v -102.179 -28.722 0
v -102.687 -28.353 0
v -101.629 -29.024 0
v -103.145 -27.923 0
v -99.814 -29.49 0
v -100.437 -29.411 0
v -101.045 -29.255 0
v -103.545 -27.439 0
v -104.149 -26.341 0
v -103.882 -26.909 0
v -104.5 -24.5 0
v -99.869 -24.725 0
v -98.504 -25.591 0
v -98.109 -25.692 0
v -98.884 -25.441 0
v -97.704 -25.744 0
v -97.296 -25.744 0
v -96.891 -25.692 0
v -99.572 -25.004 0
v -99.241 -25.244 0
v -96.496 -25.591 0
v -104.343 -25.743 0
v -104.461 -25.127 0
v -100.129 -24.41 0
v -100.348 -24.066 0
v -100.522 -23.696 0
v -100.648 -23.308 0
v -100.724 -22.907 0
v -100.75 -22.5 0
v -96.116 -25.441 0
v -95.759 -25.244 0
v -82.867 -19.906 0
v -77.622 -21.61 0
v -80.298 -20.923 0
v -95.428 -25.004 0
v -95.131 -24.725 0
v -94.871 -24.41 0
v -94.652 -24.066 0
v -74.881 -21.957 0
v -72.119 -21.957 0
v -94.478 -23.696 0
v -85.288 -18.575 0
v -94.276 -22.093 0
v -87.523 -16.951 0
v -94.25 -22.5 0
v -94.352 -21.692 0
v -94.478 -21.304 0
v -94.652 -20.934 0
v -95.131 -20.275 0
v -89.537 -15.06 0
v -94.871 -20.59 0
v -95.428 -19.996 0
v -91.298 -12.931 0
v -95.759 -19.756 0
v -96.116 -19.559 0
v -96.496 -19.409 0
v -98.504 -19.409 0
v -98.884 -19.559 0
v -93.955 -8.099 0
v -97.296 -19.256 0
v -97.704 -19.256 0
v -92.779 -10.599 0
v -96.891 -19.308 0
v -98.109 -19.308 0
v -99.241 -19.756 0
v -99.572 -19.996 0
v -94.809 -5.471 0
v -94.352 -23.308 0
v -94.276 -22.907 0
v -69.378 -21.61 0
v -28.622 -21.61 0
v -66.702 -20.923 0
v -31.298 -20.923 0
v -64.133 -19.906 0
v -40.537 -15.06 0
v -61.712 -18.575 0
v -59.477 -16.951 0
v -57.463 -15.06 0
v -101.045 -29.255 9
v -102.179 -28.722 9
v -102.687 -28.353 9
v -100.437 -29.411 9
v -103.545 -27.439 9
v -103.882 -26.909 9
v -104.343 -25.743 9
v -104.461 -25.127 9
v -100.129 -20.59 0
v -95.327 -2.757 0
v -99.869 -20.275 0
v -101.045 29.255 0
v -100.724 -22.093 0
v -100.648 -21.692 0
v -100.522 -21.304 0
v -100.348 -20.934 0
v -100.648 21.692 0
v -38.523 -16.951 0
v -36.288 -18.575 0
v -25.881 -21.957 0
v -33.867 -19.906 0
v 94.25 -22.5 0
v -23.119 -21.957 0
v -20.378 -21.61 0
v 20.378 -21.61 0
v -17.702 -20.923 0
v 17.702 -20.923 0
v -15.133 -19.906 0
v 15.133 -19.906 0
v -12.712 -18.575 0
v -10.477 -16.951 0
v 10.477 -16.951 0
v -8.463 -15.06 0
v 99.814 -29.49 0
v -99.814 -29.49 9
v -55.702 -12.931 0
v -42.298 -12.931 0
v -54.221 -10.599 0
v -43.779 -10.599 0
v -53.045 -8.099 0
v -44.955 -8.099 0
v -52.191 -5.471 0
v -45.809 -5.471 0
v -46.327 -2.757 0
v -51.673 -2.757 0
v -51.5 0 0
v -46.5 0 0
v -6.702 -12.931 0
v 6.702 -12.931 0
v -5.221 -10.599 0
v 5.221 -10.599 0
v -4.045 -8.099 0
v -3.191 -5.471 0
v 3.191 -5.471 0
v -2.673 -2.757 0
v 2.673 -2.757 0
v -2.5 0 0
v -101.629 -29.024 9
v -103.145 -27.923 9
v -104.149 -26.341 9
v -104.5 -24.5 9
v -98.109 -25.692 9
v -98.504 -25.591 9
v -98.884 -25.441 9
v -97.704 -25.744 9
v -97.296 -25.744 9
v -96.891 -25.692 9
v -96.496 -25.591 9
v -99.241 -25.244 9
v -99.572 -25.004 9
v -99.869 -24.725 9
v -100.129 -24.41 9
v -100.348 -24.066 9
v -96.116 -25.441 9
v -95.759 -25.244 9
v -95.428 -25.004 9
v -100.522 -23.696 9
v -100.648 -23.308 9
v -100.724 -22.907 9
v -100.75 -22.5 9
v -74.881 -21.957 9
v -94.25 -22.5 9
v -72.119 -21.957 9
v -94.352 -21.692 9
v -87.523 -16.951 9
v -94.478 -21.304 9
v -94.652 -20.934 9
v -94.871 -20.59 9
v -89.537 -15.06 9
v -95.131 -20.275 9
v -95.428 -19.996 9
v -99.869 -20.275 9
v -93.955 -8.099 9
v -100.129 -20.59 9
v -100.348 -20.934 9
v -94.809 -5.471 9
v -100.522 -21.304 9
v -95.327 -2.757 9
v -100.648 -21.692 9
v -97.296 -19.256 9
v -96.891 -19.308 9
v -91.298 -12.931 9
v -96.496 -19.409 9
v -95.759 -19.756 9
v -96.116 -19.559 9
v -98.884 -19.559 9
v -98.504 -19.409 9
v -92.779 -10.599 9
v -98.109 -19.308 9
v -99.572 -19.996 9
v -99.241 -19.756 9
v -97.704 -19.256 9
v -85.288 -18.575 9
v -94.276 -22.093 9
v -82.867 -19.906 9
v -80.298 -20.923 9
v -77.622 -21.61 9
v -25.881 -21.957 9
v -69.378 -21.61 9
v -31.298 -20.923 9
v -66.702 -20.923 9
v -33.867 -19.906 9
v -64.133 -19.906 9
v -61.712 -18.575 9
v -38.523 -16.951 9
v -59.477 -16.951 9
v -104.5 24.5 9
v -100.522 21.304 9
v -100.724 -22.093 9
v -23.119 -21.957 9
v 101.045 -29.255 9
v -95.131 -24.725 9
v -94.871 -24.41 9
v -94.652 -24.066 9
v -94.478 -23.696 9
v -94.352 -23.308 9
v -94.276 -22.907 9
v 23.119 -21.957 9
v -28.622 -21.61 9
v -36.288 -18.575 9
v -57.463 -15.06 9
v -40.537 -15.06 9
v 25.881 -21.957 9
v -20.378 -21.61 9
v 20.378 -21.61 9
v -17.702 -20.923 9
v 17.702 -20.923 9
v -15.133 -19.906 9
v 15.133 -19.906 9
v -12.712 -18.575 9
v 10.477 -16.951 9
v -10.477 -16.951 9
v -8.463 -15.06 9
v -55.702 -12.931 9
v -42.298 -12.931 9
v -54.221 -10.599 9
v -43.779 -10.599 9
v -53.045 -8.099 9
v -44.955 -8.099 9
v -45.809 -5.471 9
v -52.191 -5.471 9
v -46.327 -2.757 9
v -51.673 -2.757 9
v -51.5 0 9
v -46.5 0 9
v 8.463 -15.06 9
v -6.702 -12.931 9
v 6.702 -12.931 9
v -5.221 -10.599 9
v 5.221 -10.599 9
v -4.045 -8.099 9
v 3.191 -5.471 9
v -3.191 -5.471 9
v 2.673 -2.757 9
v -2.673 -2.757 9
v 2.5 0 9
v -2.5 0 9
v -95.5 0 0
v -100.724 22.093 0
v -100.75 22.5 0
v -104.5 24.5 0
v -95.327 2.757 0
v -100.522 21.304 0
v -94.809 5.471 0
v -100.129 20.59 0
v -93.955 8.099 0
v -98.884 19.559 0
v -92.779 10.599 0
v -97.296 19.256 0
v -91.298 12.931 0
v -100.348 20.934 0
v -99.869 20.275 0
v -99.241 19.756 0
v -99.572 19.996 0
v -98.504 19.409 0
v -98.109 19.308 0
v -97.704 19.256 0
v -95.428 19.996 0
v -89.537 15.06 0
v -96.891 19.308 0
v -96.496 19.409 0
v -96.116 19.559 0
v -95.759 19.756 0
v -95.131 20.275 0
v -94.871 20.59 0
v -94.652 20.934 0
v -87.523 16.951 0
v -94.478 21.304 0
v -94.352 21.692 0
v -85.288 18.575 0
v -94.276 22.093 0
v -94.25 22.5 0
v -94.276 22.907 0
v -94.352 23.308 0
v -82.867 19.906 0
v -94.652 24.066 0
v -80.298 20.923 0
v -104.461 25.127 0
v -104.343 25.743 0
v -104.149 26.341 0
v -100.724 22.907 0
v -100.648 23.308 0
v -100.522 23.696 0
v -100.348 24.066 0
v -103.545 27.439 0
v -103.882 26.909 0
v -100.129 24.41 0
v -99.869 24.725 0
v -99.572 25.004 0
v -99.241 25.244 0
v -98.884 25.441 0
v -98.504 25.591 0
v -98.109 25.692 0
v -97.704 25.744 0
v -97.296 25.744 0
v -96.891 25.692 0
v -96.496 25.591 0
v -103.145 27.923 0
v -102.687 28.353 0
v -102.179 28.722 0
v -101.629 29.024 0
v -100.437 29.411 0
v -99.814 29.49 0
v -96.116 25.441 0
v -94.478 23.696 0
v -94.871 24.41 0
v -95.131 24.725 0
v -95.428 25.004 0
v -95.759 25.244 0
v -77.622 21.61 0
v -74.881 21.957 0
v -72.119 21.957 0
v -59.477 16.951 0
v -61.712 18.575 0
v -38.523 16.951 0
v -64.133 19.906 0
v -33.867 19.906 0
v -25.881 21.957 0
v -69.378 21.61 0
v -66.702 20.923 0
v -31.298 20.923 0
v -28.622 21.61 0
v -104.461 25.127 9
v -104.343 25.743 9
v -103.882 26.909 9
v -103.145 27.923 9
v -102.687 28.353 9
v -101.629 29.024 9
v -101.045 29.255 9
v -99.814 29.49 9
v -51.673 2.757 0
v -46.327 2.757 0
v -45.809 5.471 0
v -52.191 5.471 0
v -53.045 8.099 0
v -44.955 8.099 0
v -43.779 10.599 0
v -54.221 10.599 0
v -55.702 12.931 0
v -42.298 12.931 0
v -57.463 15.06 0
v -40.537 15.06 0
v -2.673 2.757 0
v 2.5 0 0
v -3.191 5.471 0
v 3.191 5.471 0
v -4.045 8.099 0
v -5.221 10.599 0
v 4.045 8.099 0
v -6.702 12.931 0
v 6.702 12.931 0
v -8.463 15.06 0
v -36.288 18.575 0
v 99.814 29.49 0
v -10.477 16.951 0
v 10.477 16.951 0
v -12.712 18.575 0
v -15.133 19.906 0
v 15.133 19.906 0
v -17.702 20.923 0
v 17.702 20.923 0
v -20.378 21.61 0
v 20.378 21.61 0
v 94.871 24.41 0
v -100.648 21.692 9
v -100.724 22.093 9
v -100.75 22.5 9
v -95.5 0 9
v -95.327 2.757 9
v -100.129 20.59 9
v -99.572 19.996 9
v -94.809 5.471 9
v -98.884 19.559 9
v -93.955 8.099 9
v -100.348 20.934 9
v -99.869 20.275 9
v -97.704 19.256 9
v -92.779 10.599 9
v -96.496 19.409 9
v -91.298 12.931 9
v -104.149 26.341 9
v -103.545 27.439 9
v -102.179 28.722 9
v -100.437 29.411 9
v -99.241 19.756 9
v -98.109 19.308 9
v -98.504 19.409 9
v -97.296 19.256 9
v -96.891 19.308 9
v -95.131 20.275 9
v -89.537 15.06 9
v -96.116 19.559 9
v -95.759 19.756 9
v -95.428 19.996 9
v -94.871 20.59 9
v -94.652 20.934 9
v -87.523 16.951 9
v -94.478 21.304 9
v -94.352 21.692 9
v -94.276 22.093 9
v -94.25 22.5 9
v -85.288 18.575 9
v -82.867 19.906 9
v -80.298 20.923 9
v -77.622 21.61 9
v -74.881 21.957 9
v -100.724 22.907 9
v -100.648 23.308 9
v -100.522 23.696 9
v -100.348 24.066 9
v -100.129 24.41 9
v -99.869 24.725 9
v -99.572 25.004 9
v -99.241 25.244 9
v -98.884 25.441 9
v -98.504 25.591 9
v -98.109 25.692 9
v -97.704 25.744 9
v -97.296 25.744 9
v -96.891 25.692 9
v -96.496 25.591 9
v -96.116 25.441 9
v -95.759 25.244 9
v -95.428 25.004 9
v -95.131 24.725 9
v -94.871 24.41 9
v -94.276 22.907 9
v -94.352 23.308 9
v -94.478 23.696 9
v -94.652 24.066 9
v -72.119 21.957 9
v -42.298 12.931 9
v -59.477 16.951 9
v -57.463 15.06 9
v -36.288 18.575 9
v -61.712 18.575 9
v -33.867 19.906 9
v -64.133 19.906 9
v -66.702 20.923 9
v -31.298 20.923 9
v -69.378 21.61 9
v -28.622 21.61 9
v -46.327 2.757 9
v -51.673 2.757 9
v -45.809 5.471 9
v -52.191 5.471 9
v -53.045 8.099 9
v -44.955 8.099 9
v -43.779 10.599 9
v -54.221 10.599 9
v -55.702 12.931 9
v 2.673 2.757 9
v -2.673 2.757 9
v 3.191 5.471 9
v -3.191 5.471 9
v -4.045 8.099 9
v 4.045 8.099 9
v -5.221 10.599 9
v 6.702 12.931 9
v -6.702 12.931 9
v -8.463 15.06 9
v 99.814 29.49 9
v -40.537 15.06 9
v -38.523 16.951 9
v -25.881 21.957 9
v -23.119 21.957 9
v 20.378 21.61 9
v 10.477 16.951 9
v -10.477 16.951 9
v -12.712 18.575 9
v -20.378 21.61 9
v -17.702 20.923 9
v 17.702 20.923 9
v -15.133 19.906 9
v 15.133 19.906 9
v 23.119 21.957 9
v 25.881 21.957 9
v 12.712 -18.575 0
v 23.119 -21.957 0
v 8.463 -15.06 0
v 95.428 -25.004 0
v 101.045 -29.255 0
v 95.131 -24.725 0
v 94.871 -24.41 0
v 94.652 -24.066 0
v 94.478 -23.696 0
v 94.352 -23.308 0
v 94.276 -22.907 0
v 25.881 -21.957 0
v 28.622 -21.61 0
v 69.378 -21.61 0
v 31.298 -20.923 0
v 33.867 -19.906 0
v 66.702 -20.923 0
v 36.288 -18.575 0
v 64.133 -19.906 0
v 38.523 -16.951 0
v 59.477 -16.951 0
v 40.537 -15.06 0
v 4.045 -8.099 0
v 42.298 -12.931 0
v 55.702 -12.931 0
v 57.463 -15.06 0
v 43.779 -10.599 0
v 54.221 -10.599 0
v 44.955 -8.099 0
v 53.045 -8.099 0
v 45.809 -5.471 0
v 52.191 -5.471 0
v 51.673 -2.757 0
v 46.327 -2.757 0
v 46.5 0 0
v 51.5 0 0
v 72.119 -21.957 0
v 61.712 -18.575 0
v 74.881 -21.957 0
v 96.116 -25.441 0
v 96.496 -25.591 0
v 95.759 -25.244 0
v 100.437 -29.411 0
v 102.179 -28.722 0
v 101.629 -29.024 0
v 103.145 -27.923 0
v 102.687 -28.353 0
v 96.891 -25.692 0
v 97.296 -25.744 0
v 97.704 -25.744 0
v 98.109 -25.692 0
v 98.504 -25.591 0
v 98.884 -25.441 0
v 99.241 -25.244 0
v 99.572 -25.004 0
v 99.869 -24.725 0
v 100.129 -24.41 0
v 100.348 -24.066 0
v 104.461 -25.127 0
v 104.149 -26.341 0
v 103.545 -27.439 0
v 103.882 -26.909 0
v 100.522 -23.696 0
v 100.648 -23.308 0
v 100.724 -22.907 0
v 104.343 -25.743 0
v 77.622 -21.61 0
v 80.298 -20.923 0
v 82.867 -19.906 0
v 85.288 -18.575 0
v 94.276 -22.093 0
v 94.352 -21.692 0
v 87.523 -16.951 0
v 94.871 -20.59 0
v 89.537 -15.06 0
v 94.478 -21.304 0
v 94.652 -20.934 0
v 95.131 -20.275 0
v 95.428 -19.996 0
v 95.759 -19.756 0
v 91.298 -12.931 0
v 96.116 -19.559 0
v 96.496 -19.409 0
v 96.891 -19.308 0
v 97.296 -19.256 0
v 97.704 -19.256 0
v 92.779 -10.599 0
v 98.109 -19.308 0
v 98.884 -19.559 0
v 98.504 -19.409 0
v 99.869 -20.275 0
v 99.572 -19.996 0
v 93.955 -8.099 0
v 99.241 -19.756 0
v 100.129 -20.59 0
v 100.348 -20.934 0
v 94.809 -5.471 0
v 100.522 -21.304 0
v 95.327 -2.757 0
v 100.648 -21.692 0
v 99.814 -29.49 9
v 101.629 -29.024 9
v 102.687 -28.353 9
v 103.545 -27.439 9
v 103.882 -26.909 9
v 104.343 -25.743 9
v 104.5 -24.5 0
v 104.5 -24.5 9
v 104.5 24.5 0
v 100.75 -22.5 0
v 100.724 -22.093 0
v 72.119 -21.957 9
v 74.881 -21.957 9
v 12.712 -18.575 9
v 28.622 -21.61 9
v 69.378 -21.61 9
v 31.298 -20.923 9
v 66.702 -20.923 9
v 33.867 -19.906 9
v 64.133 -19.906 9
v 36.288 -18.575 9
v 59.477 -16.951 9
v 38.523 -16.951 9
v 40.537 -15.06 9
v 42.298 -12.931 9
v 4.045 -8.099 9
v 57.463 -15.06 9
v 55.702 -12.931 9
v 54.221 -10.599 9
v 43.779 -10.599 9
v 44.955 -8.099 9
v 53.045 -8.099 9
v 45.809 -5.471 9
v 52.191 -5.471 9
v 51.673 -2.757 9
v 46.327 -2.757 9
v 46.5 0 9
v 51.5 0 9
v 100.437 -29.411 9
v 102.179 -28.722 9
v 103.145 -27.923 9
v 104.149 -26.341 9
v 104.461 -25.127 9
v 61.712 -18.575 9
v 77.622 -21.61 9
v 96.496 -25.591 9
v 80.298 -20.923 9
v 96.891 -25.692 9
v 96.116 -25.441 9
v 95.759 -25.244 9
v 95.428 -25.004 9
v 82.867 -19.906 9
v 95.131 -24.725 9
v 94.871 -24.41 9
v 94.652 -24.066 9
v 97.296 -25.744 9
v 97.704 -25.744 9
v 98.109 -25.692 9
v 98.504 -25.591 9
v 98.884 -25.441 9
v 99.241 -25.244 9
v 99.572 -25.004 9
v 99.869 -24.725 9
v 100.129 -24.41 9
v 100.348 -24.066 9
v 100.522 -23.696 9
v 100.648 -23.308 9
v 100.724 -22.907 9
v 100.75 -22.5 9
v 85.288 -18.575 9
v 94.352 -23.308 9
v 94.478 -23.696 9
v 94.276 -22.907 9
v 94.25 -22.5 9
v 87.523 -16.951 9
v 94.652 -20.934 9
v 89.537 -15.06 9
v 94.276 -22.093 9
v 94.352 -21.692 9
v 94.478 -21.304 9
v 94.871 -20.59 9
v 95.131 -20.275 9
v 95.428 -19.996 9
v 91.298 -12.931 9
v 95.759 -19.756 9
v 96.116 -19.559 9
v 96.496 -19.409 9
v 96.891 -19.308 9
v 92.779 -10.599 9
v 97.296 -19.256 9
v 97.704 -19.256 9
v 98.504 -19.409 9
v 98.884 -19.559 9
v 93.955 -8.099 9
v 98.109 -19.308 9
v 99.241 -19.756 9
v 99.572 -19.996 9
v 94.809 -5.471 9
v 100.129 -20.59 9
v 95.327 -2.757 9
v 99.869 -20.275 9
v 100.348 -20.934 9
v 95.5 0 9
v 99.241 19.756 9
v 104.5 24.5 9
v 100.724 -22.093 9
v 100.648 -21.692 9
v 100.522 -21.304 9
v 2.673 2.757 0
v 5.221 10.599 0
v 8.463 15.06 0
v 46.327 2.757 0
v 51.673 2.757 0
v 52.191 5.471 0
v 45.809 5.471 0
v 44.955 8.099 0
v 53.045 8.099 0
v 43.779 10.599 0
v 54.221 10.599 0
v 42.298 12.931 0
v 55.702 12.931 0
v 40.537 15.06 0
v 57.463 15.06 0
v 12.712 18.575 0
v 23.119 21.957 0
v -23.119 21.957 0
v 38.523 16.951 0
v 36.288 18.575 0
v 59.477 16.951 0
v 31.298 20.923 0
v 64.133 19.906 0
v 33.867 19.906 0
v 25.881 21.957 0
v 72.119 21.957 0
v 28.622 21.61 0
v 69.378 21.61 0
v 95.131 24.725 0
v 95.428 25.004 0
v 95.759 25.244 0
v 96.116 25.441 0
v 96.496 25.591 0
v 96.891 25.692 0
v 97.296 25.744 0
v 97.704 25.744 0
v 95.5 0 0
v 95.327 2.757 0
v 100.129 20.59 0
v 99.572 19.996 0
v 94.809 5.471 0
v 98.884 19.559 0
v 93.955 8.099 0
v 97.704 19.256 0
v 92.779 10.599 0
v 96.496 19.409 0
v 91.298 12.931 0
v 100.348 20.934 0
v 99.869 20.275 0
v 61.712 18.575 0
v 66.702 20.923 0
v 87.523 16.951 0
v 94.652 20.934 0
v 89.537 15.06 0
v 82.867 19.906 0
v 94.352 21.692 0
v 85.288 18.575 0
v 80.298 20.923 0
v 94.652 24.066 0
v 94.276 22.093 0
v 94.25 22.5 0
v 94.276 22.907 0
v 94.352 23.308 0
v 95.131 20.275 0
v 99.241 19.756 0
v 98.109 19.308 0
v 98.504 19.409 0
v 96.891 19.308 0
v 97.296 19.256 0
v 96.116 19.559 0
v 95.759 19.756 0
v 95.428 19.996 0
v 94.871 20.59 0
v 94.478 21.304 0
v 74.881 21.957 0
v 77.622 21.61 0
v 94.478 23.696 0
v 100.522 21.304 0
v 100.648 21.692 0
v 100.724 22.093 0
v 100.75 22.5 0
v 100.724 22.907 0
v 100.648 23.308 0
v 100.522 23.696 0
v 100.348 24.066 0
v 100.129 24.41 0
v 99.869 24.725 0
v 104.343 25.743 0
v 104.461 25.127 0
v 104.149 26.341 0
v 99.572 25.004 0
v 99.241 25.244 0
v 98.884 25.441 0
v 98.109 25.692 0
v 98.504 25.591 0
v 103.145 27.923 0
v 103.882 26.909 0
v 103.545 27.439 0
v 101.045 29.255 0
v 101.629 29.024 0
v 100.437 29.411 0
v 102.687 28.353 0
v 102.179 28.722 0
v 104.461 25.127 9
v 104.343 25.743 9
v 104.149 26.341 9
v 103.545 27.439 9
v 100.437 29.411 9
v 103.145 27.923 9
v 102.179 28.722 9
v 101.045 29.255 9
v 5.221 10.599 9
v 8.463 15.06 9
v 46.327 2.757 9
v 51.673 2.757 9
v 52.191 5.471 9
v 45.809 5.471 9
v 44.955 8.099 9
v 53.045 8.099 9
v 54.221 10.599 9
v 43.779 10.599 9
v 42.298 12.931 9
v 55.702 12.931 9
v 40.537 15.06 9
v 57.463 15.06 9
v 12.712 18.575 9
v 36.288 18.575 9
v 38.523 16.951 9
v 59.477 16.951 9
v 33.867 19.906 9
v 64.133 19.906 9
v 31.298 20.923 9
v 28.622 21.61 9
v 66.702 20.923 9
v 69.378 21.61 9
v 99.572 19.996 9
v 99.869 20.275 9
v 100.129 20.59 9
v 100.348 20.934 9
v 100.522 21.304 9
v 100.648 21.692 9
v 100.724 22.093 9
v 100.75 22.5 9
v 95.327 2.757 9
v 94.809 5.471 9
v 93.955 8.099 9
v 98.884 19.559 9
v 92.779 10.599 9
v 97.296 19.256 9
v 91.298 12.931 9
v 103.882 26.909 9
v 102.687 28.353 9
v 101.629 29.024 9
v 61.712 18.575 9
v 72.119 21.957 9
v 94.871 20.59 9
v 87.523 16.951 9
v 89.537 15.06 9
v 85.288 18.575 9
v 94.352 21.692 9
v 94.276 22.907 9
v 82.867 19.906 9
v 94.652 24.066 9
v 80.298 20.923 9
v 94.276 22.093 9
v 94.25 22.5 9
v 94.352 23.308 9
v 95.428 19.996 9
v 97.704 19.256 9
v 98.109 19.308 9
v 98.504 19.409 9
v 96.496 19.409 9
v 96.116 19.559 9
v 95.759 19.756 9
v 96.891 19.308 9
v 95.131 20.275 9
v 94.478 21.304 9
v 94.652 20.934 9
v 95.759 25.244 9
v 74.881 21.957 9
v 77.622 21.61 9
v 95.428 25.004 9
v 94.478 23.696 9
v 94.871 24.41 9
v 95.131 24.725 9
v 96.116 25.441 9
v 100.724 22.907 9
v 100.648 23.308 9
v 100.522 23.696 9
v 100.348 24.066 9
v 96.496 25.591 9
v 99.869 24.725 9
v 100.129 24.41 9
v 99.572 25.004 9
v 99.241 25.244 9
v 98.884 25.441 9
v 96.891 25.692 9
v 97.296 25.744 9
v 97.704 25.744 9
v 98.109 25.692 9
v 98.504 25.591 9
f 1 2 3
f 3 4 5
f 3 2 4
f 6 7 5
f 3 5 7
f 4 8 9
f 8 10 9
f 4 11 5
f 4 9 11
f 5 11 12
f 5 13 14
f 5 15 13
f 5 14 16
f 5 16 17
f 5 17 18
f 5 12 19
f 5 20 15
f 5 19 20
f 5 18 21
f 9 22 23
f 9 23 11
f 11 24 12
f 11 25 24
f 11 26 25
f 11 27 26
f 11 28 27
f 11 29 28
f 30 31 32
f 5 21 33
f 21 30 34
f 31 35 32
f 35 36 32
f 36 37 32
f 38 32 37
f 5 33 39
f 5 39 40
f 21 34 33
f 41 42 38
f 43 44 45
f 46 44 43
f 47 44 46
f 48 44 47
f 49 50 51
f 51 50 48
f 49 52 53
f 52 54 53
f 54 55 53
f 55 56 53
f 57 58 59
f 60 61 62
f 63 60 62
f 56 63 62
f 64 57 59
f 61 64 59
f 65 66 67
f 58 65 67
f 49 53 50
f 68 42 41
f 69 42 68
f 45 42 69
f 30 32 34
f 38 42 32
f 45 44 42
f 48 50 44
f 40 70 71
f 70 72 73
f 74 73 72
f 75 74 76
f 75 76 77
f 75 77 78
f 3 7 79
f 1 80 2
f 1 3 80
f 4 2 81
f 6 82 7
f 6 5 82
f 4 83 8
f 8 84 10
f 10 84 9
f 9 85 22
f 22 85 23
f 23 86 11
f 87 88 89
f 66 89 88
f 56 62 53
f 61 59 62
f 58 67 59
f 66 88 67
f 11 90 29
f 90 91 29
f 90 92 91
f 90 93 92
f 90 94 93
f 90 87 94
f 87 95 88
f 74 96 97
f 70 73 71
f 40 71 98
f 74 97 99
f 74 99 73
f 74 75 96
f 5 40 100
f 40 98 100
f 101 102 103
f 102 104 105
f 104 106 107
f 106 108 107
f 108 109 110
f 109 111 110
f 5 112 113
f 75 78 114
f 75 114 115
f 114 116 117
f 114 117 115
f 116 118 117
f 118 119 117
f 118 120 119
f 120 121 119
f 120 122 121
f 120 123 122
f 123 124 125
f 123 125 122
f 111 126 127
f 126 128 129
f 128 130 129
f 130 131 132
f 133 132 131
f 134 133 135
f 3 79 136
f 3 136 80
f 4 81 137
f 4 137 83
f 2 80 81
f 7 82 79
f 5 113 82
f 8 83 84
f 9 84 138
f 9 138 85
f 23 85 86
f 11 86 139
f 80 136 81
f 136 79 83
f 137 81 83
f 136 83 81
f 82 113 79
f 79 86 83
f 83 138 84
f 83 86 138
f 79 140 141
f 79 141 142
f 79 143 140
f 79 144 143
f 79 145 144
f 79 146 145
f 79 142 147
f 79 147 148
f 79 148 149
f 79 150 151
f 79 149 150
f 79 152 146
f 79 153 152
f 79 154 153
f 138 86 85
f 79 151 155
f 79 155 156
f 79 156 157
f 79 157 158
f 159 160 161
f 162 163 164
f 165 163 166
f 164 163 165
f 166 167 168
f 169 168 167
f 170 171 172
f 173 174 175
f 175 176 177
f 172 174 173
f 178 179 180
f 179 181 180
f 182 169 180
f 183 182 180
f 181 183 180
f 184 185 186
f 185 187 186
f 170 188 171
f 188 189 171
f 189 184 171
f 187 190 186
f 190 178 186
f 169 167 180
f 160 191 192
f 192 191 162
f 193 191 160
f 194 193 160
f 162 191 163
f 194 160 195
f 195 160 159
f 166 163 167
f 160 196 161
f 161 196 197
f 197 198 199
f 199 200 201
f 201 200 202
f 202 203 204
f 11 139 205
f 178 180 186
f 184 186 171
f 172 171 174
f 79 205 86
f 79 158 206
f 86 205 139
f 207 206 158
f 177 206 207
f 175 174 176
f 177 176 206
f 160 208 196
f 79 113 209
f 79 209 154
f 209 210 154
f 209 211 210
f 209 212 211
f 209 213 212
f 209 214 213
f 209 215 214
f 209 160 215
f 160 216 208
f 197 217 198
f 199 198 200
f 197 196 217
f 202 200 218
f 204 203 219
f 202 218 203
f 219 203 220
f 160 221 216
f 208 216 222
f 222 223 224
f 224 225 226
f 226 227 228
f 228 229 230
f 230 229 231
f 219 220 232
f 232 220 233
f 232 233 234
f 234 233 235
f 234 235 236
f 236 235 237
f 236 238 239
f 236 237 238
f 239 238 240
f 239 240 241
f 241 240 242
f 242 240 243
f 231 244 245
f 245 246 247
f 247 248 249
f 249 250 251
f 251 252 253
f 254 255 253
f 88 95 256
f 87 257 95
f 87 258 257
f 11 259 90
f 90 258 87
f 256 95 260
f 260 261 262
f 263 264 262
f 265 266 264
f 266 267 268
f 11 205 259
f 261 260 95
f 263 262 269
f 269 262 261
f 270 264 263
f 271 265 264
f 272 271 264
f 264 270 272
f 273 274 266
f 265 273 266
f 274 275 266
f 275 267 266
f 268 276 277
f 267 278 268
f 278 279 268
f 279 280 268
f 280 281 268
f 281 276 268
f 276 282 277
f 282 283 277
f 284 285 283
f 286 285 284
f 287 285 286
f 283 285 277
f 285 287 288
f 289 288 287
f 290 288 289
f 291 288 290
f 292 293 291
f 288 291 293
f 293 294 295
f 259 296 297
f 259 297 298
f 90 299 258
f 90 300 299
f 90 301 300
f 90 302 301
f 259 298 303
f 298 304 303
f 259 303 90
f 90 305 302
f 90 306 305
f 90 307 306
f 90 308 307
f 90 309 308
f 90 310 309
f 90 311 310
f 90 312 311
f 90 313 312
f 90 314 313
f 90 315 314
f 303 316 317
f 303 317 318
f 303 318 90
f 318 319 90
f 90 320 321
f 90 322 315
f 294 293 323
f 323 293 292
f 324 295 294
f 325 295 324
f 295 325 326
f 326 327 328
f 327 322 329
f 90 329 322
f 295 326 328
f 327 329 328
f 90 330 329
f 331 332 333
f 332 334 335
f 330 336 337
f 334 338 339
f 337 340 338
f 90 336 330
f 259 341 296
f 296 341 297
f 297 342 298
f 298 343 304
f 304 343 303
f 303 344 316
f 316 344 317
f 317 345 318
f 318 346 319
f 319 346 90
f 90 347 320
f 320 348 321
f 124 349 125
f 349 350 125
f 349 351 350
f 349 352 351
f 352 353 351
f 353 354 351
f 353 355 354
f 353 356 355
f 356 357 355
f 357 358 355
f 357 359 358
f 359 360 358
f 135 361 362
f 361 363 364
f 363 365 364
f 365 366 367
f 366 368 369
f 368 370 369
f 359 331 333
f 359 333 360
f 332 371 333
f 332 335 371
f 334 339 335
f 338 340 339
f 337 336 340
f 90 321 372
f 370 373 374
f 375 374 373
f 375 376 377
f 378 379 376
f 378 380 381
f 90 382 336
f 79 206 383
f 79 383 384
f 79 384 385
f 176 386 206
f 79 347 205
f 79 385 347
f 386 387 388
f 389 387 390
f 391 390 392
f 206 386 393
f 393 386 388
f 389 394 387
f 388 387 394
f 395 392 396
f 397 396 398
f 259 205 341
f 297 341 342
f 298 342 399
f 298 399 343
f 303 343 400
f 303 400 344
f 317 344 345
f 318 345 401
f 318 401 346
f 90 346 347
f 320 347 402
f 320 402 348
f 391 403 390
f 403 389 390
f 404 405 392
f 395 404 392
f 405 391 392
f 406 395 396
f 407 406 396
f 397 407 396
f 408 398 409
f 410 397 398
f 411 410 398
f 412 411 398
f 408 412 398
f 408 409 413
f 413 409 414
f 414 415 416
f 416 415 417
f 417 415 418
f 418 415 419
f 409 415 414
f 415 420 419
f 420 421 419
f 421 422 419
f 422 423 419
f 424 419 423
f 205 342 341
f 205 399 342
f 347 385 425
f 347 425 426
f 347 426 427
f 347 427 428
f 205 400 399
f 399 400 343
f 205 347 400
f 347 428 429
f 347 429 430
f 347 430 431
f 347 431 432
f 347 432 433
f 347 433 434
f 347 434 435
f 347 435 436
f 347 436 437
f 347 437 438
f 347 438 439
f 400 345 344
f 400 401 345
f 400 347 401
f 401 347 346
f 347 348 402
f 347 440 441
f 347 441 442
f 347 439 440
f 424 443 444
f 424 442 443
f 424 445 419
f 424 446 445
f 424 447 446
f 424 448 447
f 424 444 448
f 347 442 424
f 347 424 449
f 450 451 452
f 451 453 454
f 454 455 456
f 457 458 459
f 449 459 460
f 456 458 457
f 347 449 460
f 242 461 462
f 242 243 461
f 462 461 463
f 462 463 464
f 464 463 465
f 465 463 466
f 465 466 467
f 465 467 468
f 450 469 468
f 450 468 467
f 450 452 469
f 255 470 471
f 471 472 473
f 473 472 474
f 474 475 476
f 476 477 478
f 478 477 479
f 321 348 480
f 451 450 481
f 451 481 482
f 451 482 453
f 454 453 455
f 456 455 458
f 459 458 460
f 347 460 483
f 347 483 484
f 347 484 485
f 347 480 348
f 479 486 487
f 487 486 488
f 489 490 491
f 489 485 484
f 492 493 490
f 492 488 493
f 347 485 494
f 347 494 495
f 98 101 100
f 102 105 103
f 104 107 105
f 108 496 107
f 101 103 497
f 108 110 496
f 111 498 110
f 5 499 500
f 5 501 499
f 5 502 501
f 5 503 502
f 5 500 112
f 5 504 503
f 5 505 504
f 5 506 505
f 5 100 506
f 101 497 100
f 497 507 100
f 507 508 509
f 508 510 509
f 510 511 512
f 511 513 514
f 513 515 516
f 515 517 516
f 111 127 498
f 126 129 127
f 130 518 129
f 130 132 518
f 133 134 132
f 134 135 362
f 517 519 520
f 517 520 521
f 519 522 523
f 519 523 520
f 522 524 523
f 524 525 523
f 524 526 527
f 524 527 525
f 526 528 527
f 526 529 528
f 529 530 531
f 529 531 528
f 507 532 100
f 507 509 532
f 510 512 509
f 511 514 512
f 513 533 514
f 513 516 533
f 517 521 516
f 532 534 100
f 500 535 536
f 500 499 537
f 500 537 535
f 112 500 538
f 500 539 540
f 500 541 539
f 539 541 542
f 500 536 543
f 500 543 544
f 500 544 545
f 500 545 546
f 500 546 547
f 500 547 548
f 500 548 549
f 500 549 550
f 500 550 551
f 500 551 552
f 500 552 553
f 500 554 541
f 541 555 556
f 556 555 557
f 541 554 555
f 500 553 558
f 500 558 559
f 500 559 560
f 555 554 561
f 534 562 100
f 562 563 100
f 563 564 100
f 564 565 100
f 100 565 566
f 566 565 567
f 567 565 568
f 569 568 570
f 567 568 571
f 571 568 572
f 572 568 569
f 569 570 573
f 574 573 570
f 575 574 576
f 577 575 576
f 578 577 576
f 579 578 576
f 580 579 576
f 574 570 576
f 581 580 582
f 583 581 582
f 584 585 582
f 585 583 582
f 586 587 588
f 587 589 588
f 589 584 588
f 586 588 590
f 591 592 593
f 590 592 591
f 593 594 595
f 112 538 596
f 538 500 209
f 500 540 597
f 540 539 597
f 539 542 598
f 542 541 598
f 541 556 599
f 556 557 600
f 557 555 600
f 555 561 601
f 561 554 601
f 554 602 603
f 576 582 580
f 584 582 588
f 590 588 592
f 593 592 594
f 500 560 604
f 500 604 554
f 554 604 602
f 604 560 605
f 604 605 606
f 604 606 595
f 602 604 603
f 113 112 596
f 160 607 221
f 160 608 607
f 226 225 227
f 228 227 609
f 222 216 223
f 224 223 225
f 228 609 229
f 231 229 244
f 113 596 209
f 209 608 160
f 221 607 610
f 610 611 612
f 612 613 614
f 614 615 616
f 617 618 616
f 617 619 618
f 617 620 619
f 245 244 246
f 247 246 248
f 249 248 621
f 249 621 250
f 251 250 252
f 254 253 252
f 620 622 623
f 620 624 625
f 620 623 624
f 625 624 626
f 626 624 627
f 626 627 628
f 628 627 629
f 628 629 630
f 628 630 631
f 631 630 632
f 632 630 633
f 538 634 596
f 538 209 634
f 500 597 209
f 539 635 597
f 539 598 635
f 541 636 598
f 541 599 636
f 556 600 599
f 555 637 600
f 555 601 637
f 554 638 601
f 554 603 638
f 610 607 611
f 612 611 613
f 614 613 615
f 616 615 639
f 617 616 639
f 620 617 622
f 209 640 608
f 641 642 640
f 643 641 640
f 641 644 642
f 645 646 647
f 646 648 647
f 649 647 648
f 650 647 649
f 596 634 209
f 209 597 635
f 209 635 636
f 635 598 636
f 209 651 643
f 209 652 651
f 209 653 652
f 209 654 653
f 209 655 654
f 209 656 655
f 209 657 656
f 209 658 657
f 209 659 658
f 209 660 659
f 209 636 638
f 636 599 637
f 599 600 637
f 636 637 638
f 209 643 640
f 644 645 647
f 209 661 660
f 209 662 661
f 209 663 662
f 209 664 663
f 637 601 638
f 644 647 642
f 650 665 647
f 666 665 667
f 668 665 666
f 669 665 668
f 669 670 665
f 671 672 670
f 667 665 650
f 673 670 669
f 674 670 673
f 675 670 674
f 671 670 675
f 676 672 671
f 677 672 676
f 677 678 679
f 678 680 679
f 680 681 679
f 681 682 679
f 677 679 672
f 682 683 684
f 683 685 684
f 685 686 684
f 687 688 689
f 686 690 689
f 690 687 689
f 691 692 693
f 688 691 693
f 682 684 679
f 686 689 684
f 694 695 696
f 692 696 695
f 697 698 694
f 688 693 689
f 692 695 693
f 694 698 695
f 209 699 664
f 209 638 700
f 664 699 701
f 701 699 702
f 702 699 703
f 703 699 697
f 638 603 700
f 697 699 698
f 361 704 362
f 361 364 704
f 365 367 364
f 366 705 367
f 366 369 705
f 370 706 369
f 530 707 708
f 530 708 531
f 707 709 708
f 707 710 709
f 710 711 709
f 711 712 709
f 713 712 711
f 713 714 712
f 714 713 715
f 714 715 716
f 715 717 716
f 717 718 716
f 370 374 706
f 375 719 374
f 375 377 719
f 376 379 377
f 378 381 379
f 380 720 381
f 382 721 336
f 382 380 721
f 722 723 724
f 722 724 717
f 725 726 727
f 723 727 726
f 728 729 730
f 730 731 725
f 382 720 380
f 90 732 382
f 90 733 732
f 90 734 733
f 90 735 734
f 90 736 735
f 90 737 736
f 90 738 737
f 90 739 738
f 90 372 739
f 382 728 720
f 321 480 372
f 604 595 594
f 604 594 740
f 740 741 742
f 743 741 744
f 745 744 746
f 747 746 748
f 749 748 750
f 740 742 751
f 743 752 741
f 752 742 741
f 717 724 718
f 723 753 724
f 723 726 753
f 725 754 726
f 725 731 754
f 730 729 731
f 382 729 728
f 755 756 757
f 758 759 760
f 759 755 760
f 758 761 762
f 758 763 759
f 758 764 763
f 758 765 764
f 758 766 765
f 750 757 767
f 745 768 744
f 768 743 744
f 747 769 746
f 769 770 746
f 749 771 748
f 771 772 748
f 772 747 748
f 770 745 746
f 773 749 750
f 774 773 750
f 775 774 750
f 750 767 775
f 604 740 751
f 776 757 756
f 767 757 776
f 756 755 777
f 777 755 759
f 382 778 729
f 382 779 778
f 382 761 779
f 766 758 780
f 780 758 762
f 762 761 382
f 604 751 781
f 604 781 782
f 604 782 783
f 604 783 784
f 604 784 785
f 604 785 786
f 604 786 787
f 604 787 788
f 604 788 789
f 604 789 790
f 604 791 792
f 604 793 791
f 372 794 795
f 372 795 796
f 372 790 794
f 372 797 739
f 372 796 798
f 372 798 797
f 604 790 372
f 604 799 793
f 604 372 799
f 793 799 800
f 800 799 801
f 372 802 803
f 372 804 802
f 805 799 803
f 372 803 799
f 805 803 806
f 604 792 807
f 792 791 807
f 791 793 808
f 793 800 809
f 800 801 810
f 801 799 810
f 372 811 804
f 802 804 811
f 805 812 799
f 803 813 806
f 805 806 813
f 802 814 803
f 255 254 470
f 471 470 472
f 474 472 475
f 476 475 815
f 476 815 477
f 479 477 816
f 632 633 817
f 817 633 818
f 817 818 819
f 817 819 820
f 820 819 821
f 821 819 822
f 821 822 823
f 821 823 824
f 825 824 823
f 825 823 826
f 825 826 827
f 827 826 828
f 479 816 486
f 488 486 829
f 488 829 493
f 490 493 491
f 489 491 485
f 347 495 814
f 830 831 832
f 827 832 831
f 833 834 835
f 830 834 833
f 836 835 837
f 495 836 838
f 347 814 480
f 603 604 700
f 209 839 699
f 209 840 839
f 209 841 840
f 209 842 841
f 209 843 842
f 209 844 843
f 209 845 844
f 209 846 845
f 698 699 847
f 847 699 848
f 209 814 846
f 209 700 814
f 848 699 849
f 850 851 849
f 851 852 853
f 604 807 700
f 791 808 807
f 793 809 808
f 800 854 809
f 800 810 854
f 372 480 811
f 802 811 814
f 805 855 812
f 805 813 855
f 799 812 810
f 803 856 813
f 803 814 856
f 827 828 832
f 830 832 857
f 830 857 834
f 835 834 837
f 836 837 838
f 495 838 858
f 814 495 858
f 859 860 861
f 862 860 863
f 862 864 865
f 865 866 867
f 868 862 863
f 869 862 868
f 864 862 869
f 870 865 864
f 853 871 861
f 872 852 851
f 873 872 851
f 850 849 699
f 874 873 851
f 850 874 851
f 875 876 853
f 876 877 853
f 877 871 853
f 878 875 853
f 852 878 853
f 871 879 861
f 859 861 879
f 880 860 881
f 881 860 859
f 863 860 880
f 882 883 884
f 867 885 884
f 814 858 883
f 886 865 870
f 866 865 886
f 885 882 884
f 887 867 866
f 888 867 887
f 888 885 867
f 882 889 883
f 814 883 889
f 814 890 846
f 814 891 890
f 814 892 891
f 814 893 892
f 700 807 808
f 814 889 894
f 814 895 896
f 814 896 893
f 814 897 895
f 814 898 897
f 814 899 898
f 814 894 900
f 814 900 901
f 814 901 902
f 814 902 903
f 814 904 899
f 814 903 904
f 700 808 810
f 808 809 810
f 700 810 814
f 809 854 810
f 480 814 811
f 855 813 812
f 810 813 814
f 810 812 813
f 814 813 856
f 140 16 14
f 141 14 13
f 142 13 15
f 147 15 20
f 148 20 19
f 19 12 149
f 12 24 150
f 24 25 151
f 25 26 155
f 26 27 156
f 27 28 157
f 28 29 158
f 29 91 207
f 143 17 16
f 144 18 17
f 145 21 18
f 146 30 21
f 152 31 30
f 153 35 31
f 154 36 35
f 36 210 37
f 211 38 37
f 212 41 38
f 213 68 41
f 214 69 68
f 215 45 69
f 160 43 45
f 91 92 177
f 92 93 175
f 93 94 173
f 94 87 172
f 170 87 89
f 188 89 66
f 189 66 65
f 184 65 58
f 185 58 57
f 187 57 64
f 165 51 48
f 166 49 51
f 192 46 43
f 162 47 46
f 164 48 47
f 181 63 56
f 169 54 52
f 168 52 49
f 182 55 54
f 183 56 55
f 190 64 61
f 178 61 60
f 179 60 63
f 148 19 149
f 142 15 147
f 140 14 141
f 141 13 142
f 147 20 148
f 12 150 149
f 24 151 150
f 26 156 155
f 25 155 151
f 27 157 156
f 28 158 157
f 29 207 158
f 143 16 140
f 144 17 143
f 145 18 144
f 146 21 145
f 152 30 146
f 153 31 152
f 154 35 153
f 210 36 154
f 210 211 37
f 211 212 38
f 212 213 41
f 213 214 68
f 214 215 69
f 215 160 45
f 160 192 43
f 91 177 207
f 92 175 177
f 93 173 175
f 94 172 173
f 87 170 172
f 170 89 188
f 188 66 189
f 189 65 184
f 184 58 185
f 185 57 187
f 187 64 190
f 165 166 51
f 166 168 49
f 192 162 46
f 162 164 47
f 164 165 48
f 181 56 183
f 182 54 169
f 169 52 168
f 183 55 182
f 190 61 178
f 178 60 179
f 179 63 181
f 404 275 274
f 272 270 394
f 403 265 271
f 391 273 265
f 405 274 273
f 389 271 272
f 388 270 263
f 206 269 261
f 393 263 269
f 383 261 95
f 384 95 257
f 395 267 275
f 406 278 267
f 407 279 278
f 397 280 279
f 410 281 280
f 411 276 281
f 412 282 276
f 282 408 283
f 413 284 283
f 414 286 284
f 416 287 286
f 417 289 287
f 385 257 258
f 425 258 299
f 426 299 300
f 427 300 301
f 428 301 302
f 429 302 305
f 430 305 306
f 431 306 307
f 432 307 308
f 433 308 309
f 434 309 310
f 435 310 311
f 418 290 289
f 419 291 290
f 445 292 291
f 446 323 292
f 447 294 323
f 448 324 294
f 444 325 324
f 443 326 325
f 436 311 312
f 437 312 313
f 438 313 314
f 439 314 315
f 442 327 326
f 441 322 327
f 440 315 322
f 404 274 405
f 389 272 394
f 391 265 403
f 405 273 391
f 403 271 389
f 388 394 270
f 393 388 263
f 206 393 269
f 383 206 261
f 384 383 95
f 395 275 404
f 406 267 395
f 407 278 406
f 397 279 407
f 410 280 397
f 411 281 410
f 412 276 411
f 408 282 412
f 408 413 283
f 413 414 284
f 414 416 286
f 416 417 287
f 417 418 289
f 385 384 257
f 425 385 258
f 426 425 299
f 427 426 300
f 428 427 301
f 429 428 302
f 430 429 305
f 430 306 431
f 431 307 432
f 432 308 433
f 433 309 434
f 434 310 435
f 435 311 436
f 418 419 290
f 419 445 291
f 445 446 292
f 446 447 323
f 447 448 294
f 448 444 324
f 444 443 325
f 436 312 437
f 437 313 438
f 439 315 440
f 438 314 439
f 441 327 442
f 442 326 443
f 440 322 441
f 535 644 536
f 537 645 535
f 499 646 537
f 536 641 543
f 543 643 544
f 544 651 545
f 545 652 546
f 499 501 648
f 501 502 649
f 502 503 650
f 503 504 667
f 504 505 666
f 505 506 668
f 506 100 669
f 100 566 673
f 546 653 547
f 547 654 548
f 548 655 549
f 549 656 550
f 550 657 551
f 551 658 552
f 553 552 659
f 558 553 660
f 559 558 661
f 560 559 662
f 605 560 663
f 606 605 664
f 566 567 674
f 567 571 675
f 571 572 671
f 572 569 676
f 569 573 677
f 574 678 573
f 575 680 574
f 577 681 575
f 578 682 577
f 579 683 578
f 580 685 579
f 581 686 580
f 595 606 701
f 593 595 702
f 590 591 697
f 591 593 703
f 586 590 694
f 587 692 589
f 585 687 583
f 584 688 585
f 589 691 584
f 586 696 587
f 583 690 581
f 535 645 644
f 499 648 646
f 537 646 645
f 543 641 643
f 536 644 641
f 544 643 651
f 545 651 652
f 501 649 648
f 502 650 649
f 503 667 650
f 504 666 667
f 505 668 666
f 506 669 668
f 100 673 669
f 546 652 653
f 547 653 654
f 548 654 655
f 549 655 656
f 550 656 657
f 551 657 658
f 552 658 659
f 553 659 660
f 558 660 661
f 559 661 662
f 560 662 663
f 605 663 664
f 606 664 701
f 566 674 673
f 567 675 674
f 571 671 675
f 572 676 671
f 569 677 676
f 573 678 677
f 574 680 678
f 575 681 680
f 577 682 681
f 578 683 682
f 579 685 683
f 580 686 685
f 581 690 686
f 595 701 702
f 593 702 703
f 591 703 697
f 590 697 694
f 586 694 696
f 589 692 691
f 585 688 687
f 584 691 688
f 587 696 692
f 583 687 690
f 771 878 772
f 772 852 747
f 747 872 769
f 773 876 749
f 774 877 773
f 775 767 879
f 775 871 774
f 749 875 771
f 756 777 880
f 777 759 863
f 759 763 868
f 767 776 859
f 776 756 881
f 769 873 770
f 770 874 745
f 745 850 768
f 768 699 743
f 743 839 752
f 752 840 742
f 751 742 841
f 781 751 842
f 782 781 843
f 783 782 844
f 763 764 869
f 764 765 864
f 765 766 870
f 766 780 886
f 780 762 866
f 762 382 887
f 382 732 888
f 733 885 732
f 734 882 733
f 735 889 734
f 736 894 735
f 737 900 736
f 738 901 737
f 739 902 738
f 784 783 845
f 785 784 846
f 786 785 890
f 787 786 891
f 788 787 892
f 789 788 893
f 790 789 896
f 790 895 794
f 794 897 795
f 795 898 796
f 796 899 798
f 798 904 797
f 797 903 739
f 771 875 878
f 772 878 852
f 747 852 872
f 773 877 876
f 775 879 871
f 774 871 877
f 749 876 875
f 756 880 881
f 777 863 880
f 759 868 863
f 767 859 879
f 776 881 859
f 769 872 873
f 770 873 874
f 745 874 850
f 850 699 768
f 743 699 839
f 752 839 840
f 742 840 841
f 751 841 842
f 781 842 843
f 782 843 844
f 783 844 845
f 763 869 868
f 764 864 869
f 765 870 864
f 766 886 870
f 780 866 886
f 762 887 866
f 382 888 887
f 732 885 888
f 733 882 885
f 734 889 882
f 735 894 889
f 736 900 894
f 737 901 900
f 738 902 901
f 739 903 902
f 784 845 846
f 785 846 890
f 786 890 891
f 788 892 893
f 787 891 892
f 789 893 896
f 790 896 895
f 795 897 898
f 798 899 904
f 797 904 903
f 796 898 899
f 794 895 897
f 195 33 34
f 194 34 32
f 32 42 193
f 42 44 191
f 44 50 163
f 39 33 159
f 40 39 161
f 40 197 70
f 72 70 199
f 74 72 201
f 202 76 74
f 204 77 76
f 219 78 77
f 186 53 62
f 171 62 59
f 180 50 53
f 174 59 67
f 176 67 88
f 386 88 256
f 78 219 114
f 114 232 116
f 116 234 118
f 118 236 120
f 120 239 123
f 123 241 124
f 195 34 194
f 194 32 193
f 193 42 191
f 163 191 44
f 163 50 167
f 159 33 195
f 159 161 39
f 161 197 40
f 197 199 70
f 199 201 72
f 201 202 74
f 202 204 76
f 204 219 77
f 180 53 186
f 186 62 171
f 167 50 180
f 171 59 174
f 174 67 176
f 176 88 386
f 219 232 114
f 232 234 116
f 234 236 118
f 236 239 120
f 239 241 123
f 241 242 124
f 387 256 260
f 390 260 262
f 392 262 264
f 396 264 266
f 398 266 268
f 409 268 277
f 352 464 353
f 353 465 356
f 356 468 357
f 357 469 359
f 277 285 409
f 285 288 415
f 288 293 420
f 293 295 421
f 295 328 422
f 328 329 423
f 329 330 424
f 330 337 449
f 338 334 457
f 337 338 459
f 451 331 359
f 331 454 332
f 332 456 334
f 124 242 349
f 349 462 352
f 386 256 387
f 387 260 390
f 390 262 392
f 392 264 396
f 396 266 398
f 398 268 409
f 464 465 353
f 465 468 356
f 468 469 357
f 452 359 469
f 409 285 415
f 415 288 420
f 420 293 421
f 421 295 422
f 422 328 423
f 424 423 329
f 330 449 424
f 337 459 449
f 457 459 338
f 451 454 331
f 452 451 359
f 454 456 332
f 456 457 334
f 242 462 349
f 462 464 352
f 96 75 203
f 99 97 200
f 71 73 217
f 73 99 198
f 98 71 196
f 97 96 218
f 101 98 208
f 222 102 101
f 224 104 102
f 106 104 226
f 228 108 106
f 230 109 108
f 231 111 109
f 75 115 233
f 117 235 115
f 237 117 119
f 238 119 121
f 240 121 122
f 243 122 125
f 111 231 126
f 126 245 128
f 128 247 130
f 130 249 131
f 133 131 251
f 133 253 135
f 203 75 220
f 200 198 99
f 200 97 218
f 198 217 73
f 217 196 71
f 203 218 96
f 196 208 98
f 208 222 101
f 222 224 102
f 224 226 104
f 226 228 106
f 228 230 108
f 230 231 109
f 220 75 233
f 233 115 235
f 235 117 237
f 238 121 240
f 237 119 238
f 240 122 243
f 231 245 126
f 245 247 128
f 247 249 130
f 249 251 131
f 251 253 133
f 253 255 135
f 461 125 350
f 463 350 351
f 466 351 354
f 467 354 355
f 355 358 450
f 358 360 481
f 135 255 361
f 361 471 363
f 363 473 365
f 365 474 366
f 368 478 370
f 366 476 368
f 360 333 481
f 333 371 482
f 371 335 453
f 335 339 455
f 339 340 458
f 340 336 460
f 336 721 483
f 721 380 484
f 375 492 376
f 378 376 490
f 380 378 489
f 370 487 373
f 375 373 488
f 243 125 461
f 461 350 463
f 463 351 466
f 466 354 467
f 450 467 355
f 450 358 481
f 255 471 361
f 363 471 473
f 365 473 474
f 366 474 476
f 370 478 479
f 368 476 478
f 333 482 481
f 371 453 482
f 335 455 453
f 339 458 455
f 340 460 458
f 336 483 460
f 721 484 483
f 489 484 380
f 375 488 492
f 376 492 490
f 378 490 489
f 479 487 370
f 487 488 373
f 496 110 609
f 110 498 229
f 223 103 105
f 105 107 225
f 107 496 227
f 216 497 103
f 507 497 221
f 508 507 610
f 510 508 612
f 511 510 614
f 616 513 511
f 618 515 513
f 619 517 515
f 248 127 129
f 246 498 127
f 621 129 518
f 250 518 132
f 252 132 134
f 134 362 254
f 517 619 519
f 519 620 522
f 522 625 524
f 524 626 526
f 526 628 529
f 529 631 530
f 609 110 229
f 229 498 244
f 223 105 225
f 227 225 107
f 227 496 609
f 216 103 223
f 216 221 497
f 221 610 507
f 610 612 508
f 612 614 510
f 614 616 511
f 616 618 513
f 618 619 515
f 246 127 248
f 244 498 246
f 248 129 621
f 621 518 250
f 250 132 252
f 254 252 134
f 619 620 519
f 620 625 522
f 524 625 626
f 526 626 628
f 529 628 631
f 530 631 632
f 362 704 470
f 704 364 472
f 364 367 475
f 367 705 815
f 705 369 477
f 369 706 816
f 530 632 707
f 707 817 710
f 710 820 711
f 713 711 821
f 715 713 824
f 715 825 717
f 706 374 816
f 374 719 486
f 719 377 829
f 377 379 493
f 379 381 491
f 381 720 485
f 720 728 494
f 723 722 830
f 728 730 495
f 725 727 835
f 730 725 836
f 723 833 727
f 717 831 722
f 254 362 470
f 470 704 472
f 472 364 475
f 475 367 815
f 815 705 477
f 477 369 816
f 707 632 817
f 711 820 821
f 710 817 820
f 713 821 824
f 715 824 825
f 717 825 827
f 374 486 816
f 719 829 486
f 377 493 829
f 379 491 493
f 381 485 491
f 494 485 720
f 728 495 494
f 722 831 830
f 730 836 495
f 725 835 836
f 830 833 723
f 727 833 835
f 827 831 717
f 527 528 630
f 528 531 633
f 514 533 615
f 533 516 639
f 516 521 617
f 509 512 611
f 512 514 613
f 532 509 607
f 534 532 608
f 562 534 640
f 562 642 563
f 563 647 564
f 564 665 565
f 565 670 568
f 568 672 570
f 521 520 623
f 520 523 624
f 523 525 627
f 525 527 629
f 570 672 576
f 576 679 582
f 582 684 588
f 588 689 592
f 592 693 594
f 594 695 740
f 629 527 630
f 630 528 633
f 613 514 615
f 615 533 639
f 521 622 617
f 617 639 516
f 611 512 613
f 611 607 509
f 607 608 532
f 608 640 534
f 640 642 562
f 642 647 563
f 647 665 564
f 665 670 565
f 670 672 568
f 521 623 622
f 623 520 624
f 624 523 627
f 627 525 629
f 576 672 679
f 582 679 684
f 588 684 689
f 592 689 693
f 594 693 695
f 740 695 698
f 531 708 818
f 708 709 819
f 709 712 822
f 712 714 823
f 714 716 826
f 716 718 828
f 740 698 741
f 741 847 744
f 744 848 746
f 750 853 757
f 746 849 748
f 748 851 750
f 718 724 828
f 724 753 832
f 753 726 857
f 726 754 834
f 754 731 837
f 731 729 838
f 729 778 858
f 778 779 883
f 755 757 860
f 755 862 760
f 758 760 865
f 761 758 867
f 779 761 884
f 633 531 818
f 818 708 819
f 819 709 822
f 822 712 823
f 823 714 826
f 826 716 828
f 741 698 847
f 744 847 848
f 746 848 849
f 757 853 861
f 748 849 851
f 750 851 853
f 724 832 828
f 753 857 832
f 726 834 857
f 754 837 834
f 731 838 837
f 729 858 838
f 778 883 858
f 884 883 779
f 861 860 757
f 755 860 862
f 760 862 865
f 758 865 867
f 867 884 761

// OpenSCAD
$fn = 50;

difference() {
	union() {
		hull() {
			translate(v = [-99.5, 24.5, 0]) {
				cylinder(h = 9, r = 5);
			}
			translate(v = [99.5, 24.5, 0]) {
				cylinder(h = 9, r = 5);
			}
			translate(v = [-99.5, -24.5, 0]) {
				cylinder(h = 9, r = 5);
			}
			translate(v = [99.5, -24.5, 0]) {
				cylinder(h = 9, r = 5);
			}
		}
	}
	union() {
		translate(v = [-97.5, -22.5, -100.0]) {
			cylinder(h = 200, r = 3.25);
		}
		translate(v = [-97.5, 22.5, -100.0]) {
			cylinder(h = 200, r = 3.25);
		}
		translate(v = [97.5, -22.5, -100.0]) {
			cylinder(h = 200, r = 3.25);
		}
		translate(v = [97.5, 22.5, -100.0]) {
			cylinder(h = 200, r = 3.25);
		}
		translate(v = [-97.5, -22.5, -100.0]) {
			cylinder(h = 200, r = 1.8);
		}
		translate(v = [-97.5, 22.5, -100.0]) {
			cylinder(h = 200, r = 1.8);
		}
		translate(v = [97.5, -22.5, -100.0]) {
			cylinder(h = 200, r = 1.8);
		}
		translate(v = [97.5, 22.5, -100.0]) {
			cylinder(h = 200, r = 1.8);
		}
		translate(v = [-73.5, 0, 0.0]) {
			cylinder(h = 9, r = 22.0);
		}
		translate(v = [-24.5, 0, 0.0]) {
			cylinder(h = 9, r = 22.0);
		}
		translate(v = [24.5, 0, 0.0]) {
			cylinder(h = 9, r = 22.0);
		}
		translate(v = [73.5, 0, 0.0]) {
			cylinder(h = 9, r = 22.0);
		}
	}
}
